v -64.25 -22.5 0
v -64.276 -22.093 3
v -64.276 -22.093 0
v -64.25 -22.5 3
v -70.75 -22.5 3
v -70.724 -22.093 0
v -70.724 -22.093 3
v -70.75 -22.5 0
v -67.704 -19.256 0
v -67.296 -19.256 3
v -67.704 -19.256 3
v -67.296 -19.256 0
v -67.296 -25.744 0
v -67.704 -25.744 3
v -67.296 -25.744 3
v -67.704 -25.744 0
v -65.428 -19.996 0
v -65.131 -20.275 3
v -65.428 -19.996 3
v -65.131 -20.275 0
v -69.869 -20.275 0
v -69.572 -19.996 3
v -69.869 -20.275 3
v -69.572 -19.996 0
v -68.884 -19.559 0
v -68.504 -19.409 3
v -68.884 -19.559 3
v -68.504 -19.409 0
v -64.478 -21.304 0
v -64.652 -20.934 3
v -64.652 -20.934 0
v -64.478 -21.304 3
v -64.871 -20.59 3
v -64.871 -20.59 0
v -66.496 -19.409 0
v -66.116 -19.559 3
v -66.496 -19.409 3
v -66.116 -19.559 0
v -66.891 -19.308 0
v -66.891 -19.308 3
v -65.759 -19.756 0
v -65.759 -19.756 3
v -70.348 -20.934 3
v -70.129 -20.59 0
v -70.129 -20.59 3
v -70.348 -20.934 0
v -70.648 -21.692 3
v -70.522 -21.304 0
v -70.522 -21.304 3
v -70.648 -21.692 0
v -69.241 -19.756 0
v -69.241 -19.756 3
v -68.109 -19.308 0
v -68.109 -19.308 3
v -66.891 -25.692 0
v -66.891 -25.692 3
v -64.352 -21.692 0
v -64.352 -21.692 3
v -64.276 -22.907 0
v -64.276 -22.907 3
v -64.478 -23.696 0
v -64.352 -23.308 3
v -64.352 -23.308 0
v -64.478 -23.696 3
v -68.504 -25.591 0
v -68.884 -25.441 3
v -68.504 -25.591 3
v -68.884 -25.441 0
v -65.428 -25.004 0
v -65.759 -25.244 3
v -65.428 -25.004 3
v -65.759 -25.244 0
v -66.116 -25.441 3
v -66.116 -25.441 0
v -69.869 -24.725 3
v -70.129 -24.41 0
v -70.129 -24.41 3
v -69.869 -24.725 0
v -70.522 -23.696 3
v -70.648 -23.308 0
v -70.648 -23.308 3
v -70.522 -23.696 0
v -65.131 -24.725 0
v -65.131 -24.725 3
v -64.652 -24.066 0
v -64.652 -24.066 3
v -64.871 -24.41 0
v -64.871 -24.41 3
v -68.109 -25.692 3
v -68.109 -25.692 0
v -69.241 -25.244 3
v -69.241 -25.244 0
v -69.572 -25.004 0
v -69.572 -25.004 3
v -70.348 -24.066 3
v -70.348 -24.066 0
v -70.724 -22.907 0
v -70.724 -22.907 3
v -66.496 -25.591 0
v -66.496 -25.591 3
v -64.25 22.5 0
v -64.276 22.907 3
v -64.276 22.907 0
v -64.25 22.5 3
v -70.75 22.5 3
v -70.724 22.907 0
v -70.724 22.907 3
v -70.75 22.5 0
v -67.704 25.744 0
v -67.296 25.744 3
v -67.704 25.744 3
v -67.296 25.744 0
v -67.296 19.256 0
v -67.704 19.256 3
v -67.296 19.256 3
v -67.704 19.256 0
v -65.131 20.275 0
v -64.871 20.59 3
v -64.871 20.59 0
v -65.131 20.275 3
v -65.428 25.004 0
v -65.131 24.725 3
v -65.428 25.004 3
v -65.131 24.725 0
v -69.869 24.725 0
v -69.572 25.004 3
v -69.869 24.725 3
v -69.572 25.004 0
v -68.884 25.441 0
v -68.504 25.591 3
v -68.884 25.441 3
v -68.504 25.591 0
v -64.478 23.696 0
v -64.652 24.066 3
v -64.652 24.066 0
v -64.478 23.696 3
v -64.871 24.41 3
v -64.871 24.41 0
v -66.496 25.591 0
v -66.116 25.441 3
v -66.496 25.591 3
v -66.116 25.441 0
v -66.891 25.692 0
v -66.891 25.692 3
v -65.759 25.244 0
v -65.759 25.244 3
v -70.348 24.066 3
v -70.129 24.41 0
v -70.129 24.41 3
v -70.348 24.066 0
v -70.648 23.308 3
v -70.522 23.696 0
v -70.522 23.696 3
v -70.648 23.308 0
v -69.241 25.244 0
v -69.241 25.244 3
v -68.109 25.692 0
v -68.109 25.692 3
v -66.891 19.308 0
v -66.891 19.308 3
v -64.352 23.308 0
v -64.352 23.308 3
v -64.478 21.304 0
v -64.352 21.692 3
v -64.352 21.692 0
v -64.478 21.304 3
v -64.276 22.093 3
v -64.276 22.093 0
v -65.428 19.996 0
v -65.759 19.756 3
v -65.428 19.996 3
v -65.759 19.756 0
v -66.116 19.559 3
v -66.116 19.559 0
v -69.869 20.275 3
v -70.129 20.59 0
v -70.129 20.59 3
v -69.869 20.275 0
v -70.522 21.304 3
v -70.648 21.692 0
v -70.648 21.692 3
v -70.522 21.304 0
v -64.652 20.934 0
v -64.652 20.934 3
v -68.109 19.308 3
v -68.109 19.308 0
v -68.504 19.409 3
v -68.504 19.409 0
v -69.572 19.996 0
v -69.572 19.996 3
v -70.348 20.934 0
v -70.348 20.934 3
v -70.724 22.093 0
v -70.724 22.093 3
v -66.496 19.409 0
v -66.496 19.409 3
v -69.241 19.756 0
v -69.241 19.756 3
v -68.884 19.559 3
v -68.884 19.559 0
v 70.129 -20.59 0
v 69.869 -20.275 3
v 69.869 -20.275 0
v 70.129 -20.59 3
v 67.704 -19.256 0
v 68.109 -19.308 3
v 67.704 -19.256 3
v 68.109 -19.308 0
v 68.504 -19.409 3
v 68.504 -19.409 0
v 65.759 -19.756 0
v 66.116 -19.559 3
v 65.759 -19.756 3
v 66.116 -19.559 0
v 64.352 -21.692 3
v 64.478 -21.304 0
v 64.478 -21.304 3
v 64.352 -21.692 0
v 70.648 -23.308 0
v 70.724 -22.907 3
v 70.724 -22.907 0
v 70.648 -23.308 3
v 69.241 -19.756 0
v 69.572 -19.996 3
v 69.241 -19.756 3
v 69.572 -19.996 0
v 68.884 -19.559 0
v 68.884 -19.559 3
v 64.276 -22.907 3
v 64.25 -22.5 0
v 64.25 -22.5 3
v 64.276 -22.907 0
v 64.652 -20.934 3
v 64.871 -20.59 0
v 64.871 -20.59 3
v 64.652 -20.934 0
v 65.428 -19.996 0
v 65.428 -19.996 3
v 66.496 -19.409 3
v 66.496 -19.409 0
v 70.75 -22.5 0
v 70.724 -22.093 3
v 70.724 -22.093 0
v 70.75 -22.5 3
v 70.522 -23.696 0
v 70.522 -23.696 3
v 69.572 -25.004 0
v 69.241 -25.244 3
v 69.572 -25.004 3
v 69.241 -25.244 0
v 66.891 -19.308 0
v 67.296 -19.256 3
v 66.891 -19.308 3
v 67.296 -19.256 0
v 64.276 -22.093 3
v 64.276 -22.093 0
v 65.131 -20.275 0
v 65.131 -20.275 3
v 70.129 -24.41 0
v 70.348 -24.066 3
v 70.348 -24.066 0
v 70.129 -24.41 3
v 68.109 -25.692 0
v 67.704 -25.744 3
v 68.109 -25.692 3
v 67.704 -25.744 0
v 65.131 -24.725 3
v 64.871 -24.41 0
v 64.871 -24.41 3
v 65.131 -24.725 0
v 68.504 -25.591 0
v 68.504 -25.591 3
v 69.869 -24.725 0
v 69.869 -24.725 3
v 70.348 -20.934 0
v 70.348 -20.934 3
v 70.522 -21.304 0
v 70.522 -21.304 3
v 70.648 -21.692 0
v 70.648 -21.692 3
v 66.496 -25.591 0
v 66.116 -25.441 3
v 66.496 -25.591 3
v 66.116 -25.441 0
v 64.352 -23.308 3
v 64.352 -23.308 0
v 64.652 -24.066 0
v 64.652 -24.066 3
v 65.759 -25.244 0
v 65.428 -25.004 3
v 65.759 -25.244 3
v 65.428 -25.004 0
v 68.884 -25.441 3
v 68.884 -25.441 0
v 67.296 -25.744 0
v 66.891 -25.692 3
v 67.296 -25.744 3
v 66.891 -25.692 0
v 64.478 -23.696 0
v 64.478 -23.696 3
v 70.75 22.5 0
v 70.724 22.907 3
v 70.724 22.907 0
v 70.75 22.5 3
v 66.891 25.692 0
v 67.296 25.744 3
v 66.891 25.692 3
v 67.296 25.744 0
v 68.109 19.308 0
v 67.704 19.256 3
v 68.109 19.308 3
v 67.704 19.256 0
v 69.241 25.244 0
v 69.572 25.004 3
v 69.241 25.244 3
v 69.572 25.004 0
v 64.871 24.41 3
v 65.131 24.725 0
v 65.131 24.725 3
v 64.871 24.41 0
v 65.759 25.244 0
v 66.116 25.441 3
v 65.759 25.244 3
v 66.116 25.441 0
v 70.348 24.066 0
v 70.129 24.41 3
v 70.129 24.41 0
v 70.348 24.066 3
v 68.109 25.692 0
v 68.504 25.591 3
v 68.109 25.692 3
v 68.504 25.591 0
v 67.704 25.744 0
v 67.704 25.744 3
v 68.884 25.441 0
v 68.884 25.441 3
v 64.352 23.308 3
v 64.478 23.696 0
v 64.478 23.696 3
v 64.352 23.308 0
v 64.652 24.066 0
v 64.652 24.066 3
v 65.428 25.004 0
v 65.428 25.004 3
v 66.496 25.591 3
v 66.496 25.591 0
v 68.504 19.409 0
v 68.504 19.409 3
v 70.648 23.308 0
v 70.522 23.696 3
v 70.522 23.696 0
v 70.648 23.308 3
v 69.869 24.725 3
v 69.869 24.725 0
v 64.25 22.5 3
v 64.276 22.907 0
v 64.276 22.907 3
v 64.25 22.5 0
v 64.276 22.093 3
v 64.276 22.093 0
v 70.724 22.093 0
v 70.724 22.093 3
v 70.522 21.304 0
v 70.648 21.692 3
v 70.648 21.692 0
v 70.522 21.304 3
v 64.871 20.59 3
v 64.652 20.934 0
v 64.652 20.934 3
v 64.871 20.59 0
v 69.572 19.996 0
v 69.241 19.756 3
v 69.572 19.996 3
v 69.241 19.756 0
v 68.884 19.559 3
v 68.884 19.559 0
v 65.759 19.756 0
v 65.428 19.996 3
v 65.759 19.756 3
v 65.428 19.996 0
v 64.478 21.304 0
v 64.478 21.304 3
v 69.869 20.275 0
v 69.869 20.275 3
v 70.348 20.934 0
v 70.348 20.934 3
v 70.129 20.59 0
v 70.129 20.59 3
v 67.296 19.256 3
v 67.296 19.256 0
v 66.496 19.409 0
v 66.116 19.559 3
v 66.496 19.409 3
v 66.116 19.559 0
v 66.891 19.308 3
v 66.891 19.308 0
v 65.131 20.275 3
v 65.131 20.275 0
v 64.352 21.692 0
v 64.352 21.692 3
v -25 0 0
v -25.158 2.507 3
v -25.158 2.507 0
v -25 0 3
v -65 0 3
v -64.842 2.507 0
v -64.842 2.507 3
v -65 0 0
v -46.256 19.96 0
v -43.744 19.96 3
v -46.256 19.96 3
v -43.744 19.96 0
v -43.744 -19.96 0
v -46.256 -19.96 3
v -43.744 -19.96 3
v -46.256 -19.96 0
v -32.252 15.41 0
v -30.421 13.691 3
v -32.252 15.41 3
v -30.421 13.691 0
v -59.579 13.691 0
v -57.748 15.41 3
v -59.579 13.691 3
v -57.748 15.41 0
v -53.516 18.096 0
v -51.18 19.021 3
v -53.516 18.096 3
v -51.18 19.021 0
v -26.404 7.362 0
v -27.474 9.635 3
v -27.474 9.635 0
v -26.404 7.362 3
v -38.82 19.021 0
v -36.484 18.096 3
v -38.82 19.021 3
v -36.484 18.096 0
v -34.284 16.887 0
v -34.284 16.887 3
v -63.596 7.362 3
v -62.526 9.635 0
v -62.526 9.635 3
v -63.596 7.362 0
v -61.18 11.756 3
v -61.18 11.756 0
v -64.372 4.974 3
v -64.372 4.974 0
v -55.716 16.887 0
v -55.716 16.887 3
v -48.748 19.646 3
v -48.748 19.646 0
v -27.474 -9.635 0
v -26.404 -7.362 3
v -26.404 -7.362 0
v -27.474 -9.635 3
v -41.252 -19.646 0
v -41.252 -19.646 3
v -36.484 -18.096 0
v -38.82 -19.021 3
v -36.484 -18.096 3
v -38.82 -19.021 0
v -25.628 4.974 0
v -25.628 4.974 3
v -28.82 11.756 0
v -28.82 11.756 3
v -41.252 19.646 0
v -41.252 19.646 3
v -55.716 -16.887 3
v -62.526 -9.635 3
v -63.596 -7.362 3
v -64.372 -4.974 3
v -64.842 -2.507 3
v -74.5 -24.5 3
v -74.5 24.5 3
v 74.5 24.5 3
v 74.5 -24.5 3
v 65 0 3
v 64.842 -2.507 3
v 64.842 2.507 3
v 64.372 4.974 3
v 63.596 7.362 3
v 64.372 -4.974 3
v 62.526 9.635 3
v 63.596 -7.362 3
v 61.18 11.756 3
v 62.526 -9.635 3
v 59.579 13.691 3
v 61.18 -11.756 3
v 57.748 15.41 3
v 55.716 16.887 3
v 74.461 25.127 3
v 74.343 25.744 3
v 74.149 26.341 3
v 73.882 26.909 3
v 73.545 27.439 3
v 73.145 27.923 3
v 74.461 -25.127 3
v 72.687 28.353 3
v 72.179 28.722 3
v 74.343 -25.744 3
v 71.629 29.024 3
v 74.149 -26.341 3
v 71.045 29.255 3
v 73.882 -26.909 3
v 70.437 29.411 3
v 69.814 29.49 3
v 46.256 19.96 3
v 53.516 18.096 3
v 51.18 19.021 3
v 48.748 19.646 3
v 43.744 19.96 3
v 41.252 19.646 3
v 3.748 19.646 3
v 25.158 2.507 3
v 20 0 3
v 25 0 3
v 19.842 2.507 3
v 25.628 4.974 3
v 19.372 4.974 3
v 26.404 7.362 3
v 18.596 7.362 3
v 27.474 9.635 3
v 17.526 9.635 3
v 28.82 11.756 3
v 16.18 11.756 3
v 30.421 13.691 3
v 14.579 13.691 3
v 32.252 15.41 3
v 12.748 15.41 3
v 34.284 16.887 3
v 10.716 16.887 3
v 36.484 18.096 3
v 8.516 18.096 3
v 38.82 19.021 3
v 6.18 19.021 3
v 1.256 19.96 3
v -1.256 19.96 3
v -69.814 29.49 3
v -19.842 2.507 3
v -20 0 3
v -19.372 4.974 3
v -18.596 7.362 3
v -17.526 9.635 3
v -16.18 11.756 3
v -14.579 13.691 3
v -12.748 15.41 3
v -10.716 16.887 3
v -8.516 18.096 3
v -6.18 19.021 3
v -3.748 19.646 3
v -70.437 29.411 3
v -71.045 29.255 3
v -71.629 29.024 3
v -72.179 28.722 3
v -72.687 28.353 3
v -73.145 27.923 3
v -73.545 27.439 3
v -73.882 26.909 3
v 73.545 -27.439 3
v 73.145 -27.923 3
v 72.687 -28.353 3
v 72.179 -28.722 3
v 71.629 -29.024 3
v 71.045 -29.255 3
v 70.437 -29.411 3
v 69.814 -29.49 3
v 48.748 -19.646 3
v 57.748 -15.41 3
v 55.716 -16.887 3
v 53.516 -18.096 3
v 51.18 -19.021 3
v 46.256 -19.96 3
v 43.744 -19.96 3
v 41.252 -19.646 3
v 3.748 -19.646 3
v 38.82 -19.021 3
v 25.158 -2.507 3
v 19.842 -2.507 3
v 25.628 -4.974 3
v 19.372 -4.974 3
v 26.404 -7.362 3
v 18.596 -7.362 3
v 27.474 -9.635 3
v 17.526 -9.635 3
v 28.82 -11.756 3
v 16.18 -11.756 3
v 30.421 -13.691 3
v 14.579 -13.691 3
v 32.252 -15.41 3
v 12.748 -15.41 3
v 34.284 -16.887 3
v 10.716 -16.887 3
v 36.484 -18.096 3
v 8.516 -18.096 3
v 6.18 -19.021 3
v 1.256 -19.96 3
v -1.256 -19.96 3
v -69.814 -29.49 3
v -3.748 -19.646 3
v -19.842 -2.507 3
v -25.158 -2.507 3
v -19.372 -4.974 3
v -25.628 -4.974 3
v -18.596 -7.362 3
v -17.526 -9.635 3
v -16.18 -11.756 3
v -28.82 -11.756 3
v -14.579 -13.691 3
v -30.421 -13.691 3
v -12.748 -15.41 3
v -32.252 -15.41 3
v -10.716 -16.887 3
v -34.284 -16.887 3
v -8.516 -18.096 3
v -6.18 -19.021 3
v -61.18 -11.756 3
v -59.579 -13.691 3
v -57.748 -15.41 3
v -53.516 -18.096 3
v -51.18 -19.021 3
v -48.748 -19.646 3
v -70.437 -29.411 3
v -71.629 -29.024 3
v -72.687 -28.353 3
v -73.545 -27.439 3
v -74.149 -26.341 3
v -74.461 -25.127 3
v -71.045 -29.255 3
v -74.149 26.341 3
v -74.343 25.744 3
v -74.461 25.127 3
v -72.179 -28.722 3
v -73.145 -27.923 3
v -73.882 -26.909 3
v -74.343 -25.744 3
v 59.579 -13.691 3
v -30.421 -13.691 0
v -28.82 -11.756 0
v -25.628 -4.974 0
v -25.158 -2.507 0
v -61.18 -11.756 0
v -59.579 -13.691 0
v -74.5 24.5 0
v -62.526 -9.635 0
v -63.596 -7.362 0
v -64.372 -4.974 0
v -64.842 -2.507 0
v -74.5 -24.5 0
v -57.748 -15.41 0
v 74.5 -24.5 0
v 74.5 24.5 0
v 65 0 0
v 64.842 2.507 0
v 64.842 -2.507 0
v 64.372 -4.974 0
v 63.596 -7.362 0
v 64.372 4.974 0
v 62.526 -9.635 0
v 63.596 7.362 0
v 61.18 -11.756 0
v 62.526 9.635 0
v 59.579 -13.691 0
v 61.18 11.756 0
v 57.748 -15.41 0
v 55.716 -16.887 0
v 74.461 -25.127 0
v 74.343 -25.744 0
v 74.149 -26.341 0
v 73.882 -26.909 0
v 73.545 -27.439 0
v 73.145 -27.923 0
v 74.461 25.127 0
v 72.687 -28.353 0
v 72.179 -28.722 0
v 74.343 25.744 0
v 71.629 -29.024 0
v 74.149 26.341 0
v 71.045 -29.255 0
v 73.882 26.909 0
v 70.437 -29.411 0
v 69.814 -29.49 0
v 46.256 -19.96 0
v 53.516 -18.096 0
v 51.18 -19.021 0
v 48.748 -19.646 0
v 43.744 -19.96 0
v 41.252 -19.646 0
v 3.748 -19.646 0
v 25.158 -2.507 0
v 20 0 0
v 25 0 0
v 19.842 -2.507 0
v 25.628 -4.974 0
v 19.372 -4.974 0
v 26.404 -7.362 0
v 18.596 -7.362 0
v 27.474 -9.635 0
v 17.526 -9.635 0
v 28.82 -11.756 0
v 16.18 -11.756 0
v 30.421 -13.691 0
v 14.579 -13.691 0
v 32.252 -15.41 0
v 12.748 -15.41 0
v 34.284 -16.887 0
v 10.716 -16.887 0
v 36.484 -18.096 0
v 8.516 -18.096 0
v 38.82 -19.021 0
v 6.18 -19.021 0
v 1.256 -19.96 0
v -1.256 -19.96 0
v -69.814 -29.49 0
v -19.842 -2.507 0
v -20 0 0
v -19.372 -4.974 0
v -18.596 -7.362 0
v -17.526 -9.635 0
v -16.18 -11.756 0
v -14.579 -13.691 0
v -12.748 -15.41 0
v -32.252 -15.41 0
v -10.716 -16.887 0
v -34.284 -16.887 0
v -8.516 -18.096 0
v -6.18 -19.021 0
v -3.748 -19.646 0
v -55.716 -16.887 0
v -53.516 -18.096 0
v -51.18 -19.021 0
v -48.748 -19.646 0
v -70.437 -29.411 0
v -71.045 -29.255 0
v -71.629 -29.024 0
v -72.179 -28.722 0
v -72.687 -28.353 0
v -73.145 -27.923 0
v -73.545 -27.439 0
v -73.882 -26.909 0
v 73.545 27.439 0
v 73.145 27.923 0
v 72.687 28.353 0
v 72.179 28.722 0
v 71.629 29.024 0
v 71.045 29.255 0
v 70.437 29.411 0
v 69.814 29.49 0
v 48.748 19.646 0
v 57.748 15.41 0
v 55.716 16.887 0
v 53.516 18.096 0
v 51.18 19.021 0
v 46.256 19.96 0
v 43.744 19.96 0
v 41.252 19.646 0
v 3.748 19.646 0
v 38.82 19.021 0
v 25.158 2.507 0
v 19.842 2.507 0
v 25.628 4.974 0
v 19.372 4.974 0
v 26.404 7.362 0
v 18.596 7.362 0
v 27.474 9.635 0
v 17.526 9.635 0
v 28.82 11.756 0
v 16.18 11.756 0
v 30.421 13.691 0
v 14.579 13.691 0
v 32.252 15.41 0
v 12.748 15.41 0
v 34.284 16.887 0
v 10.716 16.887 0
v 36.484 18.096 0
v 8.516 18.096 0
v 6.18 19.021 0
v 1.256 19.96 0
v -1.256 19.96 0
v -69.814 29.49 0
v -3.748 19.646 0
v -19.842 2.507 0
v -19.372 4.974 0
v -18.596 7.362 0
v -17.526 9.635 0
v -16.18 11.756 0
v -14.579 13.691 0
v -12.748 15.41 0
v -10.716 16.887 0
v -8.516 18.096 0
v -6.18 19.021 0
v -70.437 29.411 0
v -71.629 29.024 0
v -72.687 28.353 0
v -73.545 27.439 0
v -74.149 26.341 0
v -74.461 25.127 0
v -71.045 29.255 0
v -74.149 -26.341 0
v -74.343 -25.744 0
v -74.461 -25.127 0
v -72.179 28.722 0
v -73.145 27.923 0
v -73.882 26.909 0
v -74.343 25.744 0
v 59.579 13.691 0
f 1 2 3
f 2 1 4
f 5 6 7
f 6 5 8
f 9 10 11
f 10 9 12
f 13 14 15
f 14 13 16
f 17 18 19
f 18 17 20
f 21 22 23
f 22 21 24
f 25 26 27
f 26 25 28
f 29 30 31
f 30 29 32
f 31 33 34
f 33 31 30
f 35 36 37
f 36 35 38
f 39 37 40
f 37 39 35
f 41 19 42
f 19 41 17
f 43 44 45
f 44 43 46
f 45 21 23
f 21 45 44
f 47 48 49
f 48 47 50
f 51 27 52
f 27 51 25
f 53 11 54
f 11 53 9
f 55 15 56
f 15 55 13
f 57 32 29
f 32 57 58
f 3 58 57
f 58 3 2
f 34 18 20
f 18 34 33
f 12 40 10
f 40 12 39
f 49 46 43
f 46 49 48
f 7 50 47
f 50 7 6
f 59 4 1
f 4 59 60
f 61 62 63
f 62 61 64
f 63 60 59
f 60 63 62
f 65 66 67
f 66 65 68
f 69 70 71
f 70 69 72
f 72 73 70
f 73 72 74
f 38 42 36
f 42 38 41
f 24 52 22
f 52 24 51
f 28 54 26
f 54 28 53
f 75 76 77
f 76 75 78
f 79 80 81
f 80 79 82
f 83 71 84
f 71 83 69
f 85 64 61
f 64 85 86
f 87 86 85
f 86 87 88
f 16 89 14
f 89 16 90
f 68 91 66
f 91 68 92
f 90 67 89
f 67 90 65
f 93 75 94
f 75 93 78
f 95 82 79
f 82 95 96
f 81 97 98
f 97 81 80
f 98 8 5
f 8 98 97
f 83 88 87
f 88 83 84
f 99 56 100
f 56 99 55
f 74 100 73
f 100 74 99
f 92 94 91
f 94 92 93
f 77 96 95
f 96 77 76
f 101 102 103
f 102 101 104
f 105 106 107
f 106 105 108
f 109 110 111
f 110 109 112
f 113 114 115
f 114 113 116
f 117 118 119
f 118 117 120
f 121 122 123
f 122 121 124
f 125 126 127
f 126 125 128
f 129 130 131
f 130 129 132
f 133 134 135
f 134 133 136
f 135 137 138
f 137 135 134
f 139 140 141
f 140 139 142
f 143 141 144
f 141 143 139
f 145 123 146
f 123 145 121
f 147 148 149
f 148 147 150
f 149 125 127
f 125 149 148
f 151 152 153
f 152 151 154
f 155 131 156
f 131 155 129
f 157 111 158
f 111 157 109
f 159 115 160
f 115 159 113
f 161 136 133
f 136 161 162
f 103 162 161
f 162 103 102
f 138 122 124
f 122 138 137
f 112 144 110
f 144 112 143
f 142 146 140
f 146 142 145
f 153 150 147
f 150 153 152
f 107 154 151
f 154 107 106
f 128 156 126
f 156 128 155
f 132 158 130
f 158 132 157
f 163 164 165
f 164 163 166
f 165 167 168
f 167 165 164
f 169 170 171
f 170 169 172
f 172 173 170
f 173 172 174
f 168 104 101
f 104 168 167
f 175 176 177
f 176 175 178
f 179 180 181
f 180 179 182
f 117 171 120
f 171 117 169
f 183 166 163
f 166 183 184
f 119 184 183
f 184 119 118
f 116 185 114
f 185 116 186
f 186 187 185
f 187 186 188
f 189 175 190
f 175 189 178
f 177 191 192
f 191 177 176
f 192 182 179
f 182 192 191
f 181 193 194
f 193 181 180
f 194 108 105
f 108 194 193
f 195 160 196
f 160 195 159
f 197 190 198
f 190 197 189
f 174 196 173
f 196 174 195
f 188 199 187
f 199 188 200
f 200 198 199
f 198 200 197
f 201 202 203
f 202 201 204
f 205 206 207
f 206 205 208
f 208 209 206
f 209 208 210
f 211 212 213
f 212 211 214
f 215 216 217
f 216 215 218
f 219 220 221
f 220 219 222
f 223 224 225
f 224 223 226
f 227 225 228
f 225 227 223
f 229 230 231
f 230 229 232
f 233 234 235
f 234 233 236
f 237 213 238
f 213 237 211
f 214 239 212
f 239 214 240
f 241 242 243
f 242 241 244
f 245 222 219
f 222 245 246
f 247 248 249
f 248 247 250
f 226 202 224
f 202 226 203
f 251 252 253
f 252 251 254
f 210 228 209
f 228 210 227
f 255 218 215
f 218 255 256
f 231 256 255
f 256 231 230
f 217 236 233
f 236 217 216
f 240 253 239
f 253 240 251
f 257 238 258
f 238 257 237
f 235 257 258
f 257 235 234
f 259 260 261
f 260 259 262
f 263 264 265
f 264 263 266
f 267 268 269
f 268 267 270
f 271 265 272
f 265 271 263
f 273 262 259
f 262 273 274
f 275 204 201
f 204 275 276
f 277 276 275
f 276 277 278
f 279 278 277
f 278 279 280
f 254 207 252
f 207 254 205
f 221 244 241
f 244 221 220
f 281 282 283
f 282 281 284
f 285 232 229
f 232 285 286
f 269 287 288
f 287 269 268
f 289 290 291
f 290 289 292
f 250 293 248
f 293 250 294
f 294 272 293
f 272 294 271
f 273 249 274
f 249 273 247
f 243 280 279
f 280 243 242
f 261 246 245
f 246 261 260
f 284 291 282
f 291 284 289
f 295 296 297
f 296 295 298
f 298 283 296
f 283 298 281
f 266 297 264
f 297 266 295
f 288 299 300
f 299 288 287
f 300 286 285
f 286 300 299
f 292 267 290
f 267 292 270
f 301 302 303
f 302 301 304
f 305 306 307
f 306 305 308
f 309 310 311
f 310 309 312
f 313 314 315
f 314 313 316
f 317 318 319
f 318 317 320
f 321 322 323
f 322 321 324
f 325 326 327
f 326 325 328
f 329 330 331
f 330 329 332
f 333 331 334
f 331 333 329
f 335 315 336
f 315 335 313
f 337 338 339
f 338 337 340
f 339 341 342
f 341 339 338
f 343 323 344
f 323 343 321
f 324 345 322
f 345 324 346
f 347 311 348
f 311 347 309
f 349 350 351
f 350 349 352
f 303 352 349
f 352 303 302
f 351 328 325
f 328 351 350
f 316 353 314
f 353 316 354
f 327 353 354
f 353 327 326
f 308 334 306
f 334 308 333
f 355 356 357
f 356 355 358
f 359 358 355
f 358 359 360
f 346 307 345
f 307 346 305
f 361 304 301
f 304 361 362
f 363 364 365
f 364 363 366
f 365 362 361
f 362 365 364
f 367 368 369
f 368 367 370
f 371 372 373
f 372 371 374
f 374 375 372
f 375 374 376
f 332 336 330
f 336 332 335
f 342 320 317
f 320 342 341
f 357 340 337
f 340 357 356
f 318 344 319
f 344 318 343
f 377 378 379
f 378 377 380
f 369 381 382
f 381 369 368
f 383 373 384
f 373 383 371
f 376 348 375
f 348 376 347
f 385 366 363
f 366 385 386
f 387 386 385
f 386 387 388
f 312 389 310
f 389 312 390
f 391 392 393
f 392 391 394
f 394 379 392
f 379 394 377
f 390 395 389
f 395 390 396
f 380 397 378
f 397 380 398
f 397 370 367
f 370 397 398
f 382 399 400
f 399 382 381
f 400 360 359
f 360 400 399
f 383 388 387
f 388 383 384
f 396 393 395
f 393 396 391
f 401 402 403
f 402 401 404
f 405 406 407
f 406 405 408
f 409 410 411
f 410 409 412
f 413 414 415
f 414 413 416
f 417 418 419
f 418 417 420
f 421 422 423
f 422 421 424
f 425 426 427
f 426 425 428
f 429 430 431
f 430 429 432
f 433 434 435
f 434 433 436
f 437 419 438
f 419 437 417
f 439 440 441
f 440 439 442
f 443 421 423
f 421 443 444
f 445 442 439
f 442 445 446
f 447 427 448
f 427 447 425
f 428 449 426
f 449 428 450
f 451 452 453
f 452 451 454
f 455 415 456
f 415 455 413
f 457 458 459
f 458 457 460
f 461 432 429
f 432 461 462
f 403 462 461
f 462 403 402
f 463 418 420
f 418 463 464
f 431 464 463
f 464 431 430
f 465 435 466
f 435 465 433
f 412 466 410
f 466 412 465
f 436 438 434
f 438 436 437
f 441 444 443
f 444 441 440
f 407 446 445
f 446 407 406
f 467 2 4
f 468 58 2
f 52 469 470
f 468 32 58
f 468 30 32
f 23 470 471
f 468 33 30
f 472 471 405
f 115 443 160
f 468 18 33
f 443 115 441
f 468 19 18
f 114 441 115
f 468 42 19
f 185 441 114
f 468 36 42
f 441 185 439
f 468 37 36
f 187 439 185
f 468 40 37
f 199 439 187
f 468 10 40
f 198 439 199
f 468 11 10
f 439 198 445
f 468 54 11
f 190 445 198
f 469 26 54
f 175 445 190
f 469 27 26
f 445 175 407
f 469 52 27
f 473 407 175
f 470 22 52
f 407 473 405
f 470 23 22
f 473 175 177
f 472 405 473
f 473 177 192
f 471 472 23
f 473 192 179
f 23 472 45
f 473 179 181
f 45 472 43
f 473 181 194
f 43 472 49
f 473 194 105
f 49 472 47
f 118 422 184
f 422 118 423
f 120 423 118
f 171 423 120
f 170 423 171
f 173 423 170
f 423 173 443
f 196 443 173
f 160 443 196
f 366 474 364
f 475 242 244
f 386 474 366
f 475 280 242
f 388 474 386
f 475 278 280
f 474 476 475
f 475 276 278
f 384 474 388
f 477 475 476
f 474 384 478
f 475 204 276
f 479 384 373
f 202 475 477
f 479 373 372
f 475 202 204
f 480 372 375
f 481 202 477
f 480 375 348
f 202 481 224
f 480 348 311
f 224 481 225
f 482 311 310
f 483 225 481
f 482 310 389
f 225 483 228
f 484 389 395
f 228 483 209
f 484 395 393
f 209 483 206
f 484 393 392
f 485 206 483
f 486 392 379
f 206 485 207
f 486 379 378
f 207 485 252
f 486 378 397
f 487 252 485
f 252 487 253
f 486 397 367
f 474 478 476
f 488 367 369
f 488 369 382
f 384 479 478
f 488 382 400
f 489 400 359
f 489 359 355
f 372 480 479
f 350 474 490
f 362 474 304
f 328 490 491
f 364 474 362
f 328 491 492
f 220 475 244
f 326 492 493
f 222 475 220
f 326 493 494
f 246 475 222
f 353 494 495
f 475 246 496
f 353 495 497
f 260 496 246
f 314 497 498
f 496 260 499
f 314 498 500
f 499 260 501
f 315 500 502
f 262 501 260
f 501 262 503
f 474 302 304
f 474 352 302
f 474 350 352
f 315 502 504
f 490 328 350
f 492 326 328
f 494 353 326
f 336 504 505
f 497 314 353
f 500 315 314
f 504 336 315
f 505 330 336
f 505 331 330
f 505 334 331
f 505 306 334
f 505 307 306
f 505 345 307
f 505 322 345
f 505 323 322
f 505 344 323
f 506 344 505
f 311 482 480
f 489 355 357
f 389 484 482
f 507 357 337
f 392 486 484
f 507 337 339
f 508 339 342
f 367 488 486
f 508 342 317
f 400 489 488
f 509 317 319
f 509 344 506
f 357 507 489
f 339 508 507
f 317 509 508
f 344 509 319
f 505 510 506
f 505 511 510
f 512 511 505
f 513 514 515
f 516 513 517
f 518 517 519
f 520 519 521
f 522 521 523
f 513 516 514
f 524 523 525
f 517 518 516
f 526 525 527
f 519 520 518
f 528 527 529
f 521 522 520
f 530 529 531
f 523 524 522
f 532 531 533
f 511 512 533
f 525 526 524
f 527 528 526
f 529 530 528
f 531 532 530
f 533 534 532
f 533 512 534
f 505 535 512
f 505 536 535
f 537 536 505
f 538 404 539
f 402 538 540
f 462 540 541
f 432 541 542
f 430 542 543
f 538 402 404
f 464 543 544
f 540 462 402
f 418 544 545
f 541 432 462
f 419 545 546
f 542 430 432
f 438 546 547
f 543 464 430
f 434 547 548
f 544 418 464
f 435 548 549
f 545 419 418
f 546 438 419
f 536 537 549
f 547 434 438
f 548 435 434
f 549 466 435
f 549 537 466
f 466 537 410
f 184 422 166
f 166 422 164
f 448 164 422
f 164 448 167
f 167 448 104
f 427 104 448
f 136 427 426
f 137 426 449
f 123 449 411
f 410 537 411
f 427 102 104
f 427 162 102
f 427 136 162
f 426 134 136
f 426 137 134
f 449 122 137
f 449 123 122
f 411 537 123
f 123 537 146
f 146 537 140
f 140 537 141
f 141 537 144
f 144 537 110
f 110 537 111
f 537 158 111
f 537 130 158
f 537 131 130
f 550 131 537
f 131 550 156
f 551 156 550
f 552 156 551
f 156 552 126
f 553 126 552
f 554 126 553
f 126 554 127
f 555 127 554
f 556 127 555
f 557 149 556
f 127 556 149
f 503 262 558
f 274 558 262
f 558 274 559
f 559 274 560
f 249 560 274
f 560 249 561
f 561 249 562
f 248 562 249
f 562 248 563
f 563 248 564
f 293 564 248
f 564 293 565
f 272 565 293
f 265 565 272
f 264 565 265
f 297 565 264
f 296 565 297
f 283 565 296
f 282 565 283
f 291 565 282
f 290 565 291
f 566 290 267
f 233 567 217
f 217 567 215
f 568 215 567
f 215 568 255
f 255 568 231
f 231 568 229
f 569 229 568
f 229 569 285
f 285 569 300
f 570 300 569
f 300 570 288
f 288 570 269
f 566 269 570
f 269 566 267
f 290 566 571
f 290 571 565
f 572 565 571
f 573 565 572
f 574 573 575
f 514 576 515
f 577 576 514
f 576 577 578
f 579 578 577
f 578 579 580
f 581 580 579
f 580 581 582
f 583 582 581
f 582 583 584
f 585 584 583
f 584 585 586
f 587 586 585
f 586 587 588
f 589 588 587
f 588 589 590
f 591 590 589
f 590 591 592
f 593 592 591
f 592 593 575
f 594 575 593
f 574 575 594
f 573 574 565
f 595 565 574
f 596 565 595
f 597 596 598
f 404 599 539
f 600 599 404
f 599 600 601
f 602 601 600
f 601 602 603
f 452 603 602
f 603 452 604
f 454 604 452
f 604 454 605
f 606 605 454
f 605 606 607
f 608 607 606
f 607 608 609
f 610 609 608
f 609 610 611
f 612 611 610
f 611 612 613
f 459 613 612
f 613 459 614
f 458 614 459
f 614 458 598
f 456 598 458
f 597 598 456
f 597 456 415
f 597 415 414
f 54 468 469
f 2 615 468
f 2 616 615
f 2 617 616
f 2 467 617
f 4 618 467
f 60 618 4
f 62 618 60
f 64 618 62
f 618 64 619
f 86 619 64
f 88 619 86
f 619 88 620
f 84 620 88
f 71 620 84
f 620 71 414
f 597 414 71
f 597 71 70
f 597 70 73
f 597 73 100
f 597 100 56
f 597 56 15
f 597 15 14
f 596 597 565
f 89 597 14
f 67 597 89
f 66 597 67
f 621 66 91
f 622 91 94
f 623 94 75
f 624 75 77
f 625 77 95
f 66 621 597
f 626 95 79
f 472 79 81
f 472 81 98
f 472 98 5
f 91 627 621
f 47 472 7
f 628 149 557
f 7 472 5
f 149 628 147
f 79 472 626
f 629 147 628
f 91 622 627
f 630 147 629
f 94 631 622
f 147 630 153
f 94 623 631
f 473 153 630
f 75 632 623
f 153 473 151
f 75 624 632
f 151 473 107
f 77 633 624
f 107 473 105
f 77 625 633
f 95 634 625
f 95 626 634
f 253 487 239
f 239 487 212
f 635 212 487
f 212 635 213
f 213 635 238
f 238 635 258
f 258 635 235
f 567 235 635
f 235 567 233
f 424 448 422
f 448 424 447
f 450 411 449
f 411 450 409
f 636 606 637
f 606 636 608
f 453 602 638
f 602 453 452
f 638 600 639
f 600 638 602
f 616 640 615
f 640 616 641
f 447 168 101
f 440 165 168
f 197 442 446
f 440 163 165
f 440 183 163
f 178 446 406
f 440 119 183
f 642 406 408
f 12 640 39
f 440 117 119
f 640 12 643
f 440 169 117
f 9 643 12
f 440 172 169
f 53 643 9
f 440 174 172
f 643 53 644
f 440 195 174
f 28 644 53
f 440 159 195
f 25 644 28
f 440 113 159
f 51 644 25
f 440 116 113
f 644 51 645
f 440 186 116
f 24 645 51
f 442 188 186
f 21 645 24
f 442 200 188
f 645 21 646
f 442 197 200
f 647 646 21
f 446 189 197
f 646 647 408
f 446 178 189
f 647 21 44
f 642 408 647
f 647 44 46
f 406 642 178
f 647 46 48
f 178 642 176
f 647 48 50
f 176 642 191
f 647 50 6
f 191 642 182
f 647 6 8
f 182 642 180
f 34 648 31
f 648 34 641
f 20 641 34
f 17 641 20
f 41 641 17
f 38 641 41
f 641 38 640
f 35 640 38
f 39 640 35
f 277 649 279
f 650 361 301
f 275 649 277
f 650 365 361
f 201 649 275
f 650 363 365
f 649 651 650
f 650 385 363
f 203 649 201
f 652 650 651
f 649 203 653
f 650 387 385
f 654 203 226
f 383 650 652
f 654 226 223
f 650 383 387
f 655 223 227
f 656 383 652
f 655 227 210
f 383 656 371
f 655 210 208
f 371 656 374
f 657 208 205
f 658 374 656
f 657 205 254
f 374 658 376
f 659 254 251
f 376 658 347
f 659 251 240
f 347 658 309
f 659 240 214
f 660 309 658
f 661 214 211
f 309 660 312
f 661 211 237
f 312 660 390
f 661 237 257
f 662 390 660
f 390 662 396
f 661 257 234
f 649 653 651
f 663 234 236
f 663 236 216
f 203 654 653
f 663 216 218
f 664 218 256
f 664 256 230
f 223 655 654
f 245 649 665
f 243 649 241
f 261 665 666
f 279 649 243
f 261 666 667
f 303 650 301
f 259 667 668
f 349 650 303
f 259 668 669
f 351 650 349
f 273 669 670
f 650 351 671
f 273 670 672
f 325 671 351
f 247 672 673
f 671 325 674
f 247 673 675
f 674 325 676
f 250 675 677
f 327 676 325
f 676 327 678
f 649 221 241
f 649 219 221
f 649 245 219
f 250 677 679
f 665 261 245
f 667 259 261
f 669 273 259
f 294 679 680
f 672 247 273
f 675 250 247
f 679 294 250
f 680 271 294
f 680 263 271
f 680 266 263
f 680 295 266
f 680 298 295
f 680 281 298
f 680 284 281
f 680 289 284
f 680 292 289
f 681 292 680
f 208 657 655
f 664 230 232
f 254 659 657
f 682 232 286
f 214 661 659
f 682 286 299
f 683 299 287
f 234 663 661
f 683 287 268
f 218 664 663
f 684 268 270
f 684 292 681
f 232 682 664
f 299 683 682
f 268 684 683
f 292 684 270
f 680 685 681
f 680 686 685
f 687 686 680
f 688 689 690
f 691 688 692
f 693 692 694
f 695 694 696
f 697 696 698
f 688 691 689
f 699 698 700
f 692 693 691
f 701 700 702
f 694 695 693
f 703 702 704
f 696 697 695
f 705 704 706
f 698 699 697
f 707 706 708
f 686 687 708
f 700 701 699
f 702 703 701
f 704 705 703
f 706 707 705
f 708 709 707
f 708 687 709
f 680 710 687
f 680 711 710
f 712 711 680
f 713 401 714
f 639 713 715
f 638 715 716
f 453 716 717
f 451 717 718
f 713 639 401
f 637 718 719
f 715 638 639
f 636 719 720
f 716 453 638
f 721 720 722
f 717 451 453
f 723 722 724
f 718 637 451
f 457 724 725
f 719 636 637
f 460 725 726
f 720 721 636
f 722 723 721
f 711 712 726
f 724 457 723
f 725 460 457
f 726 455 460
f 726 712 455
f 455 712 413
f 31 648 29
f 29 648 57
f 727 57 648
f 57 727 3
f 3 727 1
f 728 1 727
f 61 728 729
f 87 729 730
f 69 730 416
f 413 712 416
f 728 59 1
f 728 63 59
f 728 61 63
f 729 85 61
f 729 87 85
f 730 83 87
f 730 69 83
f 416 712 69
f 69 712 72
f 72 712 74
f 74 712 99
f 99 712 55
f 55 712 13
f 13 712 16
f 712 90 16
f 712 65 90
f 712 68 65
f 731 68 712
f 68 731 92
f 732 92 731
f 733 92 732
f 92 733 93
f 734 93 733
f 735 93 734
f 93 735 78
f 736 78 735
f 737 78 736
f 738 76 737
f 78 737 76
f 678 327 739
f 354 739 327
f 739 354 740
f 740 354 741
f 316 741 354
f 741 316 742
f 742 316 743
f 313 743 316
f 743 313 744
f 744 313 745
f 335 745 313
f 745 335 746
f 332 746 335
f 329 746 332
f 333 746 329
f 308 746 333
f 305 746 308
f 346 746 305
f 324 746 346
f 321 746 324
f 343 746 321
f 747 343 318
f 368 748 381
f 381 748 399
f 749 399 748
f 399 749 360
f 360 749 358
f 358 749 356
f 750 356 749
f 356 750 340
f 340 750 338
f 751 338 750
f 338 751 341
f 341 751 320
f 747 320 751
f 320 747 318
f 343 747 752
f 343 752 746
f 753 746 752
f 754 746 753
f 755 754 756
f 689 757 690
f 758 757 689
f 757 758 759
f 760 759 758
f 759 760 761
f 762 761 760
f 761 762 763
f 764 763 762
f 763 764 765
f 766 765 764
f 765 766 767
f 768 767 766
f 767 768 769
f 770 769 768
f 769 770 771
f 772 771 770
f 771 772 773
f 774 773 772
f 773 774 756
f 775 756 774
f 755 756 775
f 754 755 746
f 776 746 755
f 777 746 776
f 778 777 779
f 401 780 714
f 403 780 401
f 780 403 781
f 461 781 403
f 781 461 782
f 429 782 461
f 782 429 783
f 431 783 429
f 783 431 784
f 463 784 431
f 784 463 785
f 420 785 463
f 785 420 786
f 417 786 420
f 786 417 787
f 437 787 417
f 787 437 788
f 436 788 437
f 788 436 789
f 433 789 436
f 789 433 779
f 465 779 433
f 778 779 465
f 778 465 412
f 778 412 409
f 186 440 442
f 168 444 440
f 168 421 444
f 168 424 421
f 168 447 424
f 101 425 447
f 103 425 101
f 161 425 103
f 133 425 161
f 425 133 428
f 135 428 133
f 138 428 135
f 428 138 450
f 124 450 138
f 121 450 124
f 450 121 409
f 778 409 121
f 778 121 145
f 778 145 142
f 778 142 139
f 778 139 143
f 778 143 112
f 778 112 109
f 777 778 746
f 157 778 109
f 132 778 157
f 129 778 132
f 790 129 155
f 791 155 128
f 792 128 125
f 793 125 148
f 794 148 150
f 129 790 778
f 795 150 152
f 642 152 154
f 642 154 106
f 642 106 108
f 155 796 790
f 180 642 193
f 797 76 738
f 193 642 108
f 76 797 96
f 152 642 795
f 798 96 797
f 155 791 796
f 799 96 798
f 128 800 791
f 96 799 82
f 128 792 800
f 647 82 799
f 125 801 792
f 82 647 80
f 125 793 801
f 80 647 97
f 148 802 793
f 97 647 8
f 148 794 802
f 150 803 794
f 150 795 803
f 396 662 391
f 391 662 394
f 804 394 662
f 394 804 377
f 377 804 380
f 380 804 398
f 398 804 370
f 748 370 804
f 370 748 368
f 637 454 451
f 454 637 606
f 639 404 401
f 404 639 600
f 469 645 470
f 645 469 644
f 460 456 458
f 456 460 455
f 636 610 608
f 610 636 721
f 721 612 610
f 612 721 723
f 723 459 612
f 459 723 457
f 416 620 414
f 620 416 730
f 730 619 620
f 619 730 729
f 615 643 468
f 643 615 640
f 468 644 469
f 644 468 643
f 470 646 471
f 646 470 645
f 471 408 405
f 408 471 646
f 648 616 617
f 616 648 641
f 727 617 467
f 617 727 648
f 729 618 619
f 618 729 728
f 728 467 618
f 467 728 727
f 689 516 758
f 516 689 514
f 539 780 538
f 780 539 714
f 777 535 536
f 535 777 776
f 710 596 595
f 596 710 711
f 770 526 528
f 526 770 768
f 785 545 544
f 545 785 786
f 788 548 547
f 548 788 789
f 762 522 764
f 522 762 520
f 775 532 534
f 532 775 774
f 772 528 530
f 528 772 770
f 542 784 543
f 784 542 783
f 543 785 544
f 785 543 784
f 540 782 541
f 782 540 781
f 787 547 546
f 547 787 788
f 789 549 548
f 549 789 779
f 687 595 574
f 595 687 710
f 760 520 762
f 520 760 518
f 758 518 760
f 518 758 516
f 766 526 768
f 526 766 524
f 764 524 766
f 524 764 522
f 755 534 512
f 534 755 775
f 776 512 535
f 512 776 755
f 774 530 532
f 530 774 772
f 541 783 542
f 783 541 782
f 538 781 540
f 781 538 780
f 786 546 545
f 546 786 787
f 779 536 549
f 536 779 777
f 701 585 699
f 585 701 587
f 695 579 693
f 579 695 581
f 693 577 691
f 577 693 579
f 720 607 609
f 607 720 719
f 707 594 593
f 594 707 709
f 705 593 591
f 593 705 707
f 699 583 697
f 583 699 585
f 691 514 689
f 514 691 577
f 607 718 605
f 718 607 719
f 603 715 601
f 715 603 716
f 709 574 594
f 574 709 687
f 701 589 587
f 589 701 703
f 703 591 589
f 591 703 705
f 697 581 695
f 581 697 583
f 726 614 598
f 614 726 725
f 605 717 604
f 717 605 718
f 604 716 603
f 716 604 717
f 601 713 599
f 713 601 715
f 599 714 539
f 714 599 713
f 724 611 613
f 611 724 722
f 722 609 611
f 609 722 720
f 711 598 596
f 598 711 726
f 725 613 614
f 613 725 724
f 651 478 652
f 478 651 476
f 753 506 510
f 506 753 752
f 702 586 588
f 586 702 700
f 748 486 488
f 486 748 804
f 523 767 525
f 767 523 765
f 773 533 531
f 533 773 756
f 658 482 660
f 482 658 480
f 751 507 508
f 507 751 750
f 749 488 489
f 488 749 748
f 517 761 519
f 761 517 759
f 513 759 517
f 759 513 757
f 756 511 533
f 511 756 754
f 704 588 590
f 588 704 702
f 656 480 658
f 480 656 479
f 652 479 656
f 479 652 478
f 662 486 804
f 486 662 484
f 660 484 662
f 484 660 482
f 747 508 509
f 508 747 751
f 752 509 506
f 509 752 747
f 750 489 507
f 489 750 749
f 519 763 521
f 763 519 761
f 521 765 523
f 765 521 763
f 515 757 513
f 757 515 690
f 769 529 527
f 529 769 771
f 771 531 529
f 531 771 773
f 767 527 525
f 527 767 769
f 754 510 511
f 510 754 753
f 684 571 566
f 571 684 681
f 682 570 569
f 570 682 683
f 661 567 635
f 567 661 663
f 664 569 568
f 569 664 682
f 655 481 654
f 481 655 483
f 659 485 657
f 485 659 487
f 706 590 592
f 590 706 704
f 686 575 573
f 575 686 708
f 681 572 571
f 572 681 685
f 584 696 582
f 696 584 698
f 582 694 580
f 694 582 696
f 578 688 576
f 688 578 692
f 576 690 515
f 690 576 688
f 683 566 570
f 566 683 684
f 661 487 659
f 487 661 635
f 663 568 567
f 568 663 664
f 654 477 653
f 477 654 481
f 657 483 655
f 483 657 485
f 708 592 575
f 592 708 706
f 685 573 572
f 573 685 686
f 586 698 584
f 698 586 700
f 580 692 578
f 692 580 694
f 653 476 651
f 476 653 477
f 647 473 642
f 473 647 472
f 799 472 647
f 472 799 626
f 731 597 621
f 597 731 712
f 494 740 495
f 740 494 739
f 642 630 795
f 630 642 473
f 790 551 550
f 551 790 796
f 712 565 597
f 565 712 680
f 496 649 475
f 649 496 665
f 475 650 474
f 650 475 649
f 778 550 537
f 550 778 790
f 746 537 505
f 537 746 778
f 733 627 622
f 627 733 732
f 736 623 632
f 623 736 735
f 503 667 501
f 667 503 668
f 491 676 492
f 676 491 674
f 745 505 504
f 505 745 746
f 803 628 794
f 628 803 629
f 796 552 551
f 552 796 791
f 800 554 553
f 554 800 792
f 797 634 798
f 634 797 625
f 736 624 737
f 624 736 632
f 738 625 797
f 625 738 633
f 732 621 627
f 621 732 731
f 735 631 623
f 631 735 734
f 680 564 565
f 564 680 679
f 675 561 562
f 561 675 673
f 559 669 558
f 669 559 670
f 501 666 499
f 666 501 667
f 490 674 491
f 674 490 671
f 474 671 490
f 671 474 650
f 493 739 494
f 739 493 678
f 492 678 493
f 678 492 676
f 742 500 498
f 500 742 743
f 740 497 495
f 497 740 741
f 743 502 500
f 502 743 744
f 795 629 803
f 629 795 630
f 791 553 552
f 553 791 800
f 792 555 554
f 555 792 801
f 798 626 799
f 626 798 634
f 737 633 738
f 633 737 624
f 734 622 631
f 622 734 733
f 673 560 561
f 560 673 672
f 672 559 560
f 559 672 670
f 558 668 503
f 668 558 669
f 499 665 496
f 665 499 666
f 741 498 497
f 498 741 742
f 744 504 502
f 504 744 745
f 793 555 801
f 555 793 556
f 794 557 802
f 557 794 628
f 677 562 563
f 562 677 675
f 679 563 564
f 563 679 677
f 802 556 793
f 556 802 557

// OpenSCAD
$fn = 50;


difference() {
	union() {
		hull() {
			translate(v = [-69.5000000000, 24.5000000000, 0]) {
				cylinder(h = 3, r = 5);
			}
			translate(v = [69.5000000000, 24.5000000000, 0]) {
				cylinder(h = 3, r = 5);
			}
			translate(v = [-69.5000000000, -24.5000000000, 0]) {
				cylinder(h = 3, r = 5);
			}
			translate(v = [69.5000000000, -24.5000000000, 0]) {
				cylinder(h = 3, r = 5);
			}
		}
	}
	union() {
		#translate(v = [-67.5000000000, -22.5000000000, -100.0000000000]) {
			cylinder(h = 200, r = 3.2500000000);
		}
		#translate(v = [-67.5000000000, 22.5000000000, -100.0000000000]) {
			cylinder(h = 200, r = 3.2500000000);
		}
		#translate(v = [67.5000000000, -22.5000000000, -100.0000000000]) {
			cylinder(h = 200, r = 3.2500000000);
		}
		#translate(v = [67.5000000000, 22.5000000000, -100.0000000000]) {
			cylinder(h = 200, r = 3.2500000000);
		}
		#translate(v = [-45.0000000000, 0, 0]) {
			cylinder(h = 3, r = 20.0000000000);
		}
		#cylinder(h = 3, r = 20.0000000000);
		#translate(v = [45.0000000000, 0, 0]) {
			cylinder(h = 3, r = 20.0000000000);
		}
	}
}
